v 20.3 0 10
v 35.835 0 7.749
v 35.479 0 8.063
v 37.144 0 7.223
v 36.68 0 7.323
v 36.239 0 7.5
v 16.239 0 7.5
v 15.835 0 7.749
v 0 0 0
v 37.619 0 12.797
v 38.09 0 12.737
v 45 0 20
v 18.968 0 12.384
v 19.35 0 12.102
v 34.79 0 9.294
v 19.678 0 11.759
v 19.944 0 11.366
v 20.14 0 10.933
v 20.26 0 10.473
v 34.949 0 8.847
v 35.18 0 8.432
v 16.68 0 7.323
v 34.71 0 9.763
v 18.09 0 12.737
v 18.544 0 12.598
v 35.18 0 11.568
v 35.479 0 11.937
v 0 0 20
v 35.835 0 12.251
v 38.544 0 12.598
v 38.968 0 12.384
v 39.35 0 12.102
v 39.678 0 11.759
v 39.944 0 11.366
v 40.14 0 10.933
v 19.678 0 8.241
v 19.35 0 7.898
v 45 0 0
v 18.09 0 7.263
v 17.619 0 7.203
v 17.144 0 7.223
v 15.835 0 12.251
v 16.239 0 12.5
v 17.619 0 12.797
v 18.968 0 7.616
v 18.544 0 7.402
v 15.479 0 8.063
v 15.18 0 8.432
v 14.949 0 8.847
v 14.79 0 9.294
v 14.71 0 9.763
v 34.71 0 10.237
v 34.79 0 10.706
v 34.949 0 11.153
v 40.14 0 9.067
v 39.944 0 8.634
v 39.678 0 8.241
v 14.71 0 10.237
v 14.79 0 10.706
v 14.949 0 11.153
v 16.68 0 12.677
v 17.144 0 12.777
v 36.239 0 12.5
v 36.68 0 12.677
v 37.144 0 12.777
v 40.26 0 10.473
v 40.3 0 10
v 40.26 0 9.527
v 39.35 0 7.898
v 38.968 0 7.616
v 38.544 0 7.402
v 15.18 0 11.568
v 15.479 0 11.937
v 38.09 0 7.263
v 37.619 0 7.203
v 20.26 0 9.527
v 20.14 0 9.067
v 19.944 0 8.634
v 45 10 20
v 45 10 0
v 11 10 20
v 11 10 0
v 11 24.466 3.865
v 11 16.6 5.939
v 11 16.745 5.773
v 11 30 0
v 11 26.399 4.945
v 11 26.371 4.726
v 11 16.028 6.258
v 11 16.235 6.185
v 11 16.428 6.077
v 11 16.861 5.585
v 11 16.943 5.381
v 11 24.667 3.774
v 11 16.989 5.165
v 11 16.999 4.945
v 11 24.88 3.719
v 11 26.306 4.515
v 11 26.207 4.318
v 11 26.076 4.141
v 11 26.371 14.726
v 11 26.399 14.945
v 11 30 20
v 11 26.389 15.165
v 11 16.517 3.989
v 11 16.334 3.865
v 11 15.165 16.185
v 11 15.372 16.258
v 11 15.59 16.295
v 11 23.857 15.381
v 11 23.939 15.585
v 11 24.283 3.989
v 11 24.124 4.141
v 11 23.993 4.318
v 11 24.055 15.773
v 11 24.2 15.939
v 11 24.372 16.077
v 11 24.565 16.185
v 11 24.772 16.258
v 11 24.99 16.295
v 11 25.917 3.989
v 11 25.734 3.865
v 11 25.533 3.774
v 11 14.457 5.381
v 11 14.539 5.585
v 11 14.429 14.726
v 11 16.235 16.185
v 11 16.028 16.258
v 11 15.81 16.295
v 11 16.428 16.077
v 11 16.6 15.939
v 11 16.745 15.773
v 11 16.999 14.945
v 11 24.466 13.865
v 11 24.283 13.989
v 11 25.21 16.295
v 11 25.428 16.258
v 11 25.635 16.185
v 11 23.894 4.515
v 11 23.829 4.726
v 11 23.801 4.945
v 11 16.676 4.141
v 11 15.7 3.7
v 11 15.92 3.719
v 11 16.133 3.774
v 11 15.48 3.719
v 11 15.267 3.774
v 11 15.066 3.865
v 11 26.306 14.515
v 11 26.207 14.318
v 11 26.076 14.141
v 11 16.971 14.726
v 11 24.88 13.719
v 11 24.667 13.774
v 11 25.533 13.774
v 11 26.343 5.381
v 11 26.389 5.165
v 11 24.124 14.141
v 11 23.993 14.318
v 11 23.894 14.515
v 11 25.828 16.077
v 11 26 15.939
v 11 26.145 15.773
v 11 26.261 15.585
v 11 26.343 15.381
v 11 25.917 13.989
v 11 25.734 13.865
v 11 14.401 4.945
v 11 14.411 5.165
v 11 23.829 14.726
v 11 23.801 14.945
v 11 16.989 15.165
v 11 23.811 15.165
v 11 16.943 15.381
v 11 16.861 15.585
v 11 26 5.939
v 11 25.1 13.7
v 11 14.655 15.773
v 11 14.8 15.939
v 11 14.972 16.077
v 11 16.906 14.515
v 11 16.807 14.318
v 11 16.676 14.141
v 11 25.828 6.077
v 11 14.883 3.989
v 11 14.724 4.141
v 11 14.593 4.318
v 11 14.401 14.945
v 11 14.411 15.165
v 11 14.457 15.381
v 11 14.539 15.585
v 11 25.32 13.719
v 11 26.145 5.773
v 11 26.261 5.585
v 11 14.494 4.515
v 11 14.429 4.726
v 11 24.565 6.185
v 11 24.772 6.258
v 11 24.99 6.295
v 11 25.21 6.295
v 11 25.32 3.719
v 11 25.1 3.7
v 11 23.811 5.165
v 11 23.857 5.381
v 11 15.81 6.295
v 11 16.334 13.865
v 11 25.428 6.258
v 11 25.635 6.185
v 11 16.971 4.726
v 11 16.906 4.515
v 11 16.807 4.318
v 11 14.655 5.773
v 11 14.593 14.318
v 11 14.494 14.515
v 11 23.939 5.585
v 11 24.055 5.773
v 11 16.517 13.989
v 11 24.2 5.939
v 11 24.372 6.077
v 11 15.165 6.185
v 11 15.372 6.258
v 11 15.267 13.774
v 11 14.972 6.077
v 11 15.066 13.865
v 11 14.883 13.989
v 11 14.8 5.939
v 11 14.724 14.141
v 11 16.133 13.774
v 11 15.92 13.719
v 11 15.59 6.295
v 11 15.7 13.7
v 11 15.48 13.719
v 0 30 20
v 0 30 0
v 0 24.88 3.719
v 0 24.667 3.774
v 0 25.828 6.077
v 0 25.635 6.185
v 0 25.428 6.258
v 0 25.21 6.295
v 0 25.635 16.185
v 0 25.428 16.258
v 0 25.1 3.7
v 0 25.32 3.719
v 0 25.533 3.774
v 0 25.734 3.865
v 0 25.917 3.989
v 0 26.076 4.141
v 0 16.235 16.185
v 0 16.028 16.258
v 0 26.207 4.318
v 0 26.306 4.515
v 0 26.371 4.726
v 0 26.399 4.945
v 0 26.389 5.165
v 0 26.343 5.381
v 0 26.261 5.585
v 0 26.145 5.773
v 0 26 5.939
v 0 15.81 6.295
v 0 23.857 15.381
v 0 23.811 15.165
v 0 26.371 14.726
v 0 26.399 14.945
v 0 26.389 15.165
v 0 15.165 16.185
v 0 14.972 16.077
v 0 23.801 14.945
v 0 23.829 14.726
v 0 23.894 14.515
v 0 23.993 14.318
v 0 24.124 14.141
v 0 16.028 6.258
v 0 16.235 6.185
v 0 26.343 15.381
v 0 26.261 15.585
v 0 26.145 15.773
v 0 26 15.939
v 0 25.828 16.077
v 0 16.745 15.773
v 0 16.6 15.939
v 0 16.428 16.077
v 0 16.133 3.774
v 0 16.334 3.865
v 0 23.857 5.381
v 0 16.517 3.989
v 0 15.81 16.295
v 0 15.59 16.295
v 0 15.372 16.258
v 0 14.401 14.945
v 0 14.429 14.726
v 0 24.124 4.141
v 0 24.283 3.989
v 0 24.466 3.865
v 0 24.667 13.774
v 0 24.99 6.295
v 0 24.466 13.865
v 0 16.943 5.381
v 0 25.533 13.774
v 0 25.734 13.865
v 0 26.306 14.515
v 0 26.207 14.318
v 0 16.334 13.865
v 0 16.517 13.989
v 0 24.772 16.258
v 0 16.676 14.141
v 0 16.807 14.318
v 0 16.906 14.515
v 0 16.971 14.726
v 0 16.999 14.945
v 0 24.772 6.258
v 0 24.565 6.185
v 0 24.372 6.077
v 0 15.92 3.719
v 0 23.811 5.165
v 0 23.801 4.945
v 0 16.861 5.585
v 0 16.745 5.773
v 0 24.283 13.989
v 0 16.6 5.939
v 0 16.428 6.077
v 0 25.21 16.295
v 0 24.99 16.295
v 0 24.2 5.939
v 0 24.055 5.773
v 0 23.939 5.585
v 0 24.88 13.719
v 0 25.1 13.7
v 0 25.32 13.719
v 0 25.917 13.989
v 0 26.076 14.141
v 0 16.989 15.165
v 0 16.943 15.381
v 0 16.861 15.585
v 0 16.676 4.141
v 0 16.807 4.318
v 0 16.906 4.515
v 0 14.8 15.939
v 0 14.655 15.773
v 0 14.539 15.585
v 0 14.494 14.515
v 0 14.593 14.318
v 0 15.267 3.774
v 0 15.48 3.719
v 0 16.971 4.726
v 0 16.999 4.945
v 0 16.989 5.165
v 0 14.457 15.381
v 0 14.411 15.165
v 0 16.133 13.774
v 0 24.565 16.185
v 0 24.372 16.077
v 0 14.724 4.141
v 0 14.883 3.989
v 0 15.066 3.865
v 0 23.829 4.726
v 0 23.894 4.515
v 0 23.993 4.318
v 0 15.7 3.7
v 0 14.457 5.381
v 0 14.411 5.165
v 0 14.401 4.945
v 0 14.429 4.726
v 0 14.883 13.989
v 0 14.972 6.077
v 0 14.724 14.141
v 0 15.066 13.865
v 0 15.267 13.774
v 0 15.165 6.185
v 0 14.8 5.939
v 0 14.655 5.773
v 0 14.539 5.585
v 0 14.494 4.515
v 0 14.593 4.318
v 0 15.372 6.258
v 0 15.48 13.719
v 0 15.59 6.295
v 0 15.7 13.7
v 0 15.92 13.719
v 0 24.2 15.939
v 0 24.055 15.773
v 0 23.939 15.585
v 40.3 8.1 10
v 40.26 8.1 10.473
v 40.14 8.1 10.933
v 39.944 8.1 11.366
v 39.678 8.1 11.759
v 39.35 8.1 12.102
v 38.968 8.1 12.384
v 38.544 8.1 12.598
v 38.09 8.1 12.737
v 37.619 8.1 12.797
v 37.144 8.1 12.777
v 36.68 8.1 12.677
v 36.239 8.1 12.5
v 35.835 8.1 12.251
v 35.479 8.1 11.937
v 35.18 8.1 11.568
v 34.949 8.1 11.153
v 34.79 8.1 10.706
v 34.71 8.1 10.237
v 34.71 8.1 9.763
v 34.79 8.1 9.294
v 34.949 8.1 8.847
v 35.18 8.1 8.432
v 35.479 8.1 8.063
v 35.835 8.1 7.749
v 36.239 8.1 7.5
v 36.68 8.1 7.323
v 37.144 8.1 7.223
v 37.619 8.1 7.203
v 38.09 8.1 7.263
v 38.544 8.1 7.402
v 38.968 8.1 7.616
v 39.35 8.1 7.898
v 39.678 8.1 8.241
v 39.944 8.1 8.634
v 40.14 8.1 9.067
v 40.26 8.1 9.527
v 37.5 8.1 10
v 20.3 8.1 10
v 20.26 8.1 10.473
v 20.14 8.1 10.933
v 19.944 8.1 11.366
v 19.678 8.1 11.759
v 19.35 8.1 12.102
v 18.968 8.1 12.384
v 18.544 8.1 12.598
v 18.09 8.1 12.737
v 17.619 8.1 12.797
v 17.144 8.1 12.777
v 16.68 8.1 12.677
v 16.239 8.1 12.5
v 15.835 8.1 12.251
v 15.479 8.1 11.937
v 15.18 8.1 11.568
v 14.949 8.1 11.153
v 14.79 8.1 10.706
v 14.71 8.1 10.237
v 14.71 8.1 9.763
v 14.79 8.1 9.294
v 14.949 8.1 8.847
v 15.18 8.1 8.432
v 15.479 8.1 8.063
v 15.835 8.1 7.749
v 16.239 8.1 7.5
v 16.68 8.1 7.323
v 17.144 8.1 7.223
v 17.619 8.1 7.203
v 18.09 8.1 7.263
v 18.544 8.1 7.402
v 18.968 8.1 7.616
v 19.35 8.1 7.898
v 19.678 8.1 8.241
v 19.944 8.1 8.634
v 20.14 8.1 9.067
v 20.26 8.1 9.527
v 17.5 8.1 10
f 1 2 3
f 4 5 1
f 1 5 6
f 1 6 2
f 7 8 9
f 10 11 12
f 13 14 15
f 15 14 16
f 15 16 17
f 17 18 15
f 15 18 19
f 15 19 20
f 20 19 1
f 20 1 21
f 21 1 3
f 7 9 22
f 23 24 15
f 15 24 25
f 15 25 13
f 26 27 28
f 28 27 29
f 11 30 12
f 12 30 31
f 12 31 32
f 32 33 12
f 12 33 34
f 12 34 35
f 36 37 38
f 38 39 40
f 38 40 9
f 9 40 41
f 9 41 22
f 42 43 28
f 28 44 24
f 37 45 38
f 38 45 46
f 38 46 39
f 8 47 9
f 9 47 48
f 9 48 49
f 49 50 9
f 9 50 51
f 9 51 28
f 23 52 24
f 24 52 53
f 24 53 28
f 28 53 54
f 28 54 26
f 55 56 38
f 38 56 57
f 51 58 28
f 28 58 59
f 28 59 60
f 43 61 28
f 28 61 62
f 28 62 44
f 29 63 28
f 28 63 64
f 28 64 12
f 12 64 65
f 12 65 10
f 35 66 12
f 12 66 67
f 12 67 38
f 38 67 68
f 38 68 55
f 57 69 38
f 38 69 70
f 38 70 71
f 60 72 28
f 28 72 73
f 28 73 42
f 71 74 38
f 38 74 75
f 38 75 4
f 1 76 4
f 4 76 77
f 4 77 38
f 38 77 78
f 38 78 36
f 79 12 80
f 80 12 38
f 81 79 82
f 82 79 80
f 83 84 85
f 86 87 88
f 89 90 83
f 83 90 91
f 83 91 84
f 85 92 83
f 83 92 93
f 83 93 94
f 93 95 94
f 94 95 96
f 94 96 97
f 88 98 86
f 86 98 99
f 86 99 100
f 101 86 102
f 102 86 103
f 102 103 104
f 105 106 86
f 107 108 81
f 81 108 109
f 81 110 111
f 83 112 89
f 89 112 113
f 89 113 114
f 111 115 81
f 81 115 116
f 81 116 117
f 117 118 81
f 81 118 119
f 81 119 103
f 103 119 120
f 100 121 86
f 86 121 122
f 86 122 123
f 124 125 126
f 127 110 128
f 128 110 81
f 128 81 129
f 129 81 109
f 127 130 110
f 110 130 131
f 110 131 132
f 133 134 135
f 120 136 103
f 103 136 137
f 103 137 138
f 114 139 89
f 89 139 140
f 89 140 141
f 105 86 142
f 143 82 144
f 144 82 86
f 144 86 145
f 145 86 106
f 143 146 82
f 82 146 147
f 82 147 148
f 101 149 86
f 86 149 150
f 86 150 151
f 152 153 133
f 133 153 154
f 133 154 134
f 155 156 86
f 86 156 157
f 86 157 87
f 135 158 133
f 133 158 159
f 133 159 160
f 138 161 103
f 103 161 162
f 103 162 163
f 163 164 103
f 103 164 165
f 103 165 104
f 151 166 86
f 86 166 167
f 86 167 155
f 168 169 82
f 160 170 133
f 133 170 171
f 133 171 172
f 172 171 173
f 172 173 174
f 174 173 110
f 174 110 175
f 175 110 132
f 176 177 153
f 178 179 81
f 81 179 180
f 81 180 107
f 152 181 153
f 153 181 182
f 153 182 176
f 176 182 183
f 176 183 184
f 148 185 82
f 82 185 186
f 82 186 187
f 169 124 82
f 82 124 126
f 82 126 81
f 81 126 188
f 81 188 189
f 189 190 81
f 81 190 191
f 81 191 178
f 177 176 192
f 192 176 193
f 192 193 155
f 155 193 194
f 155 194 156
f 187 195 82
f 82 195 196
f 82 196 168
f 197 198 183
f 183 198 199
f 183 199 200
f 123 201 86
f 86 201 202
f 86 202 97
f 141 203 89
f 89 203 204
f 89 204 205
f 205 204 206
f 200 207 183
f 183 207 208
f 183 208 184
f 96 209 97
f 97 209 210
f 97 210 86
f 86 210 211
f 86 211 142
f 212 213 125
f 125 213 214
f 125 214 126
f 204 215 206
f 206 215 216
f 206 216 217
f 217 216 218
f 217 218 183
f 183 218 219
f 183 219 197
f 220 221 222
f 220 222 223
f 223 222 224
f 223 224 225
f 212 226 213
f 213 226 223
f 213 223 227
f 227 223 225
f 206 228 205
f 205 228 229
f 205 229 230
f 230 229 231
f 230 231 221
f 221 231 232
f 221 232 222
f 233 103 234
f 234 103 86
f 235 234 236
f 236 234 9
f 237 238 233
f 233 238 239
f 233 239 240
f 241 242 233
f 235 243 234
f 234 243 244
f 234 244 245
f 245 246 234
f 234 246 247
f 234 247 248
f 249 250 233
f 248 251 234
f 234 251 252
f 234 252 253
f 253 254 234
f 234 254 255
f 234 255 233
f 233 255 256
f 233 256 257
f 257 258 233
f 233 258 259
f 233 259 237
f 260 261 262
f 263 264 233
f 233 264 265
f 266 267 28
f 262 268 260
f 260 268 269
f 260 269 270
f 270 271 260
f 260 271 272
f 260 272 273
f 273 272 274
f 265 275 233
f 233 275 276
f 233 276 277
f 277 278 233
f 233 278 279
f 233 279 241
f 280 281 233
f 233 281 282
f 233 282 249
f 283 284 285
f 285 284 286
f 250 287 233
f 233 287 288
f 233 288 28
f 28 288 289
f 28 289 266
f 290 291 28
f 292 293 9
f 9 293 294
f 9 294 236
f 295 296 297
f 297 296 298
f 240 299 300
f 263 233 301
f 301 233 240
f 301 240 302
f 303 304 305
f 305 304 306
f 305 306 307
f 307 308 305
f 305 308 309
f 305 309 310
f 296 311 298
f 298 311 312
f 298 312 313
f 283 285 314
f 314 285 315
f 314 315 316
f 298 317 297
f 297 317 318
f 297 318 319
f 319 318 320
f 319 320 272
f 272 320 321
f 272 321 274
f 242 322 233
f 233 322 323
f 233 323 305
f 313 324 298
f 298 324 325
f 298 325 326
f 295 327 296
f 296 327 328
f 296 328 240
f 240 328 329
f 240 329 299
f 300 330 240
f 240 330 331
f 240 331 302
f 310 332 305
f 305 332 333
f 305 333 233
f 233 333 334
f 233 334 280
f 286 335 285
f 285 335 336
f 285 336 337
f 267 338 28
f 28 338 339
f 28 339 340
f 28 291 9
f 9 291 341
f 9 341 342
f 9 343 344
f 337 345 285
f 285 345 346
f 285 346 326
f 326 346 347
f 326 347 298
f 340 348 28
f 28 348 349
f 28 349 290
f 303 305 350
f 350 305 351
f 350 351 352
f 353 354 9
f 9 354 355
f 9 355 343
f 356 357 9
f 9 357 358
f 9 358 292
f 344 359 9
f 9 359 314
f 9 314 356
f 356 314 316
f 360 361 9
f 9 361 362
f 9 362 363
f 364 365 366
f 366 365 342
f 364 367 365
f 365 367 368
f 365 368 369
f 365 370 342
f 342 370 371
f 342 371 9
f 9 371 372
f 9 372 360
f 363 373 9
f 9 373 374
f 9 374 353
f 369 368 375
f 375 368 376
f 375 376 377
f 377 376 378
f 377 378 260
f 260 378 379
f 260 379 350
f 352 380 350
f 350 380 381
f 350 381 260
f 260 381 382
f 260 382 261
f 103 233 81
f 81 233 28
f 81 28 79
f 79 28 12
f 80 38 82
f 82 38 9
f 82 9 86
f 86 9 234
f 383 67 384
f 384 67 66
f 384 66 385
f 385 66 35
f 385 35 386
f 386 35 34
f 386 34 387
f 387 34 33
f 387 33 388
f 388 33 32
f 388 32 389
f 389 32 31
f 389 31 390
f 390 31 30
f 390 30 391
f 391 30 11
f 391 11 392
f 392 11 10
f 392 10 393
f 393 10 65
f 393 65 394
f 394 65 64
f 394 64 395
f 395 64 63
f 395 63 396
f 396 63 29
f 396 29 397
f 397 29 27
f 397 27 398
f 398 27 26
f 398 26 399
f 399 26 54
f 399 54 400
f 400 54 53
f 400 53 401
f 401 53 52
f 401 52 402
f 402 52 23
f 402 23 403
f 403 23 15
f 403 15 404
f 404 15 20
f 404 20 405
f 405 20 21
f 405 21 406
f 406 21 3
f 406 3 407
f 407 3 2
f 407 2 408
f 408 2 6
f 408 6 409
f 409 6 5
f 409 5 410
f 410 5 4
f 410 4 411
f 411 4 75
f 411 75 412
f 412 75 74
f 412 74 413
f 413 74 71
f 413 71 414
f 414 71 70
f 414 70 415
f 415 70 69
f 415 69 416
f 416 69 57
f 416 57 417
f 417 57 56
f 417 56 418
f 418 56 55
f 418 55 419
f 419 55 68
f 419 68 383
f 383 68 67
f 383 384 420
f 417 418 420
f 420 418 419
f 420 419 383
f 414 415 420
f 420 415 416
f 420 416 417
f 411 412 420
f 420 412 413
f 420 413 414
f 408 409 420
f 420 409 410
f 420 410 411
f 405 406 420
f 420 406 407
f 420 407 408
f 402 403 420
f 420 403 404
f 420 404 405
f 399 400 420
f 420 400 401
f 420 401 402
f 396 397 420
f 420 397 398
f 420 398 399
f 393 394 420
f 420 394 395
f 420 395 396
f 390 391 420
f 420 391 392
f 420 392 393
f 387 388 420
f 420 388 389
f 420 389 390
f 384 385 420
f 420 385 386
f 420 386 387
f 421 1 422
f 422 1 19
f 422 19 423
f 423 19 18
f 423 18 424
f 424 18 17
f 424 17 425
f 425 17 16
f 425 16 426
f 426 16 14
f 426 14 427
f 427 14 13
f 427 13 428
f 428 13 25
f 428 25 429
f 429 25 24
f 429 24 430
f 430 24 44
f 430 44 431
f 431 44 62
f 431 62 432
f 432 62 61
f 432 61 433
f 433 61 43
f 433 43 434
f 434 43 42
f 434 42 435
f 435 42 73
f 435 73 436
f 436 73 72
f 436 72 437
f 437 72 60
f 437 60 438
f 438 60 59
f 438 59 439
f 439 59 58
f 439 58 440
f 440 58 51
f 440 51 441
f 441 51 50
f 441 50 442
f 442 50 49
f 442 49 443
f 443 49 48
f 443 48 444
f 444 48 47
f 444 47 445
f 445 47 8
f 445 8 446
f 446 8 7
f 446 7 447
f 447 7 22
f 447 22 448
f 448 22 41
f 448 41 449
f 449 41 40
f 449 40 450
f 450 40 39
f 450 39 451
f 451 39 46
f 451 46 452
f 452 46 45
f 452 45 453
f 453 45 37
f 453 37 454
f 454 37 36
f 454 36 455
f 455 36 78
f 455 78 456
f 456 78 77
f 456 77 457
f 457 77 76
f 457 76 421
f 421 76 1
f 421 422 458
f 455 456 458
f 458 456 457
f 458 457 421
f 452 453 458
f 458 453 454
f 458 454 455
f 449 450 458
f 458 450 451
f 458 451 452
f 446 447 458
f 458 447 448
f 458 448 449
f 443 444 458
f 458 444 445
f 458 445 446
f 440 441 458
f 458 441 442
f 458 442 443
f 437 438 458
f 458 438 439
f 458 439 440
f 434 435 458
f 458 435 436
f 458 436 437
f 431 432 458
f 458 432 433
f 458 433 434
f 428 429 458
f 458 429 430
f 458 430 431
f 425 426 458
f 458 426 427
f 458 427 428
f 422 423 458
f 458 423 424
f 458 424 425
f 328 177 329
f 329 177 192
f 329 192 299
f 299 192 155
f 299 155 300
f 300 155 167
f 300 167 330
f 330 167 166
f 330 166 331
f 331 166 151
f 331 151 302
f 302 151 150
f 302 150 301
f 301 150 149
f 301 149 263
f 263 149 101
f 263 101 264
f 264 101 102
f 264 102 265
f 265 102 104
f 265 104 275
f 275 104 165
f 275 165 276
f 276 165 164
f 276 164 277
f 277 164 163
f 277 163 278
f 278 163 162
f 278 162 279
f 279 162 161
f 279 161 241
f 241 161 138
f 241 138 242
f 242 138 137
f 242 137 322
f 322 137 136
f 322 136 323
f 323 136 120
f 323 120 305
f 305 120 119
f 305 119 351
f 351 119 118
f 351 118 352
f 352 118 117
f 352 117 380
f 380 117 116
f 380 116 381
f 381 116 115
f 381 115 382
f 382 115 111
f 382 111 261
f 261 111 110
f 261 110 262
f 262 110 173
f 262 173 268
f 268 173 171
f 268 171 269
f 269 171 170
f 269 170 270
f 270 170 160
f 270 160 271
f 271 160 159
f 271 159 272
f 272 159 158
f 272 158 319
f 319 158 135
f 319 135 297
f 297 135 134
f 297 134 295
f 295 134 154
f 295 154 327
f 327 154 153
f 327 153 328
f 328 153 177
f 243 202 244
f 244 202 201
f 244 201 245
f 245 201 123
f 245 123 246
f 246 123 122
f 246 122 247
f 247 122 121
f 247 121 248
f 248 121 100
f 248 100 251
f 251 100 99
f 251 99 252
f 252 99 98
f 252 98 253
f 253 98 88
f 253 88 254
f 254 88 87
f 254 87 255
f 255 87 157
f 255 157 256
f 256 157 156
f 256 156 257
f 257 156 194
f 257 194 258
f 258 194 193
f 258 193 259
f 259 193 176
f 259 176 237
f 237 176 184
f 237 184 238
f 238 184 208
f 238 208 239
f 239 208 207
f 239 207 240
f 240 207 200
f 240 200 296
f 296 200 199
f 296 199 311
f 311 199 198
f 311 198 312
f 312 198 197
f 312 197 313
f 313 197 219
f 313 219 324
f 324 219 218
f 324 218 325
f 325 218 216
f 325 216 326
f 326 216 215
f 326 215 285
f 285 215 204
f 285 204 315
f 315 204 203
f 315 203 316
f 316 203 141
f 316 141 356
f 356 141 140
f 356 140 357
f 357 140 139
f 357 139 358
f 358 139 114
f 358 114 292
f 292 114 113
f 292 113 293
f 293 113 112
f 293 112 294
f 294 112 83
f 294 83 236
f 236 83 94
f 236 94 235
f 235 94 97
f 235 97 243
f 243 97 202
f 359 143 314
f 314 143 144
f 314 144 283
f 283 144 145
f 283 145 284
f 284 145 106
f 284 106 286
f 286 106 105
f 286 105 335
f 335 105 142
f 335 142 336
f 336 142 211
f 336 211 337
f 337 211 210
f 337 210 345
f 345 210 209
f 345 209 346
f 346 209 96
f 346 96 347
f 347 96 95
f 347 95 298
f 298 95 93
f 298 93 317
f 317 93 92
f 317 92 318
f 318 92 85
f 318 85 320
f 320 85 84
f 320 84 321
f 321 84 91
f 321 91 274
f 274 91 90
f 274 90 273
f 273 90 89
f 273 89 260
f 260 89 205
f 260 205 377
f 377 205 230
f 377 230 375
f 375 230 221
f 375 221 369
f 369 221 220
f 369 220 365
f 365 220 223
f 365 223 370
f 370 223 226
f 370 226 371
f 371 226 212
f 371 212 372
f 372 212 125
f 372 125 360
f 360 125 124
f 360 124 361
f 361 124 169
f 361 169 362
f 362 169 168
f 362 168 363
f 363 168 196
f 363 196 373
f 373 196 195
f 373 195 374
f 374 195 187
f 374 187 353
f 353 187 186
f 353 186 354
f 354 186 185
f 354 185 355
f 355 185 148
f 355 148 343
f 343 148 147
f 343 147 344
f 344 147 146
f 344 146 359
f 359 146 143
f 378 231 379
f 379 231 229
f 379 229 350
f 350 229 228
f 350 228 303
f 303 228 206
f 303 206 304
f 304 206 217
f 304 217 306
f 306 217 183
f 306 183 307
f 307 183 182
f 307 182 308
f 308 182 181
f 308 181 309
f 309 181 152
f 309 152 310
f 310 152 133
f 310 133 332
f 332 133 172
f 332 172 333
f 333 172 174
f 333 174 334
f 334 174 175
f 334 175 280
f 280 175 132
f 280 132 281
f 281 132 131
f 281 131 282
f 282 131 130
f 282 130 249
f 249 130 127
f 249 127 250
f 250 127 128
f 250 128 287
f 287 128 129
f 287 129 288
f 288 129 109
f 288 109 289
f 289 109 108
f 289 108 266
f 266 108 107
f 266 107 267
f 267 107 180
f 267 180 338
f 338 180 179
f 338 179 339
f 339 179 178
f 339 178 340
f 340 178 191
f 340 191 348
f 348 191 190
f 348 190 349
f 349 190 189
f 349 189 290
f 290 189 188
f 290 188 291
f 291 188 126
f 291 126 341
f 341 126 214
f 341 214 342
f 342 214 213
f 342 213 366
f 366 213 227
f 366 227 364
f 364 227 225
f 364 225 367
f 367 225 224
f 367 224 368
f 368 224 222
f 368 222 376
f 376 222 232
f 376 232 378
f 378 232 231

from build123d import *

# Parameters (mm, degrees)
BOSS_EXTRU_1_DEPTH      = 20
ESQUISSE2_R             = 2.8
ENL_V_MAT_EXTRU_1_DEPTH = 8.1
ENL_V_MAT_EXTRU_2_REACH = 13
ESQUISSE3_R             = 1.3


with BuildPart() as part:
    # Esquisse1 → Boss.-Extru.1 (new body)
    with BuildSketch(Plane.XY):
        Polygon((0, 0), (0, 30), (11, 30), (11, 10), (45, 10), (45, 0), align=None)
    extrude(amount=BOSS_EXTRU_1_DEPTH)

    # Esquisse2 → Enlèv. mat.-Extru.1 (cut)
    with BuildSketch(Plane.XZ):
        with Locations((17.5, 10)):
            Circle(ESQUISSE2_R)
        with Locations((37.5, 10)):
            Circle(ESQUISSE2_R)
    extrude(amount=-ENL_V_MAT_EXTRU_1_DEPTH, mode=Mode.SUBTRACT)

    # Esquisse3 → Enlèv. mat.-Extru.2 (cut, up to next)
    with BuildSketch(Plane(origin=(11, 0, 0), x_dir=(0, 0, -1), z_dir=(1, 0, 0)), mode=Mode.PRIVATE) as enl_v_mat_extru_2_sk1:
        with Locations((-15, 25.1)):
            Circle(ESQUISSE3_R)
    enl_v_mat_extru_2_tool1 = extrude(enl_v_mat_extru_2_sk1.sketch, amount=-ENL_V_MAT_EXTRU_2_REACH, mode=Mode.PRIVATE) & part.part
    add(enl_v_mat_extru_2_tool1.solids().sort_by_distance((11, 25.1, 15))[0], mode=Mode.SUBTRACT)
    # Esquisse3 → Enlèv. mat.-Extru.2 (cut, up to next)
    with BuildSketch(Plane(origin=(11, 0, 0), x_dir=(0, 0, -1), z_dir=(1, 0, 0)), mode=Mode.PRIVATE) as enl_v_mat_extru_2_sk2:
        with Locations((-5, 25.1)):
            Circle(ESQUISSE3_R)
    enl_v_mat_extru_2_tool2 = extrude(enl_v_mat_extru_2_sk2.sketch, amount=-ENL_V_MAT_EXTRU_2_REACH, mode=Mode.PRIVATE) & part.part
    add(enl_v_mat_extru_2_tool2.solids().sort_by_distance((11, 25.1, 5))[0], mode=Mode.SUBTRACT)
    # Esquisse3 → Enlèv. mat.-Extru.2 (cut, up to next)
    with BuildSketch(Plane(origin=(11, 0, 0), x_dir=(0, 0, -1), z_dir=(1, 0, 0)), mode=Mode.PRIVATE) as enl_v_mat_extru_2_sk3:
        with Locations((-5, 15.7)):
            Circle(ESQUISSE3_R)
    enl_v_mat_extru_2_tool3 = extrude(enl_v_mat_extru_2_sk3.sketch, amount=-ENL_V_MAT_EXTRU_2_REACH, mode=Mode.PRIVATE) & part.part
    add(enl_v_mat_extru_2_tool3.solids().sort_by_distance((11, 15.7, 5))[0], mode=Mode.SUBTRACT)
    # Esquisse3 → Enlèv. mat.-Extru.2 (cut, up to next)
    with BuildSketch(Plane(origin=(11, 0, 0), x_dir=(0, 0, -1), z_dir=(1, 0, 0)), mode=Mode.PRIVATE) as enl_v_mat_extru_2_sk4:
        with Locations((-15, 15.7)):
            Circle(ESQUISSE3_R)
    enl_v_mat_extru_2_tool4 = extrude(enl_v_mat_extru_2_sk4.sketch, amount=-ENL_V_MAT_EXTRU_2_REACH, mode=Mode.PRIVATE) & part.part
    add(enl_v_mat_extru_2_tool4.solids().sort_by_distance((11, 15.7, 15))[0], mode=Mode.SUBTRACT)


solid = part.part
